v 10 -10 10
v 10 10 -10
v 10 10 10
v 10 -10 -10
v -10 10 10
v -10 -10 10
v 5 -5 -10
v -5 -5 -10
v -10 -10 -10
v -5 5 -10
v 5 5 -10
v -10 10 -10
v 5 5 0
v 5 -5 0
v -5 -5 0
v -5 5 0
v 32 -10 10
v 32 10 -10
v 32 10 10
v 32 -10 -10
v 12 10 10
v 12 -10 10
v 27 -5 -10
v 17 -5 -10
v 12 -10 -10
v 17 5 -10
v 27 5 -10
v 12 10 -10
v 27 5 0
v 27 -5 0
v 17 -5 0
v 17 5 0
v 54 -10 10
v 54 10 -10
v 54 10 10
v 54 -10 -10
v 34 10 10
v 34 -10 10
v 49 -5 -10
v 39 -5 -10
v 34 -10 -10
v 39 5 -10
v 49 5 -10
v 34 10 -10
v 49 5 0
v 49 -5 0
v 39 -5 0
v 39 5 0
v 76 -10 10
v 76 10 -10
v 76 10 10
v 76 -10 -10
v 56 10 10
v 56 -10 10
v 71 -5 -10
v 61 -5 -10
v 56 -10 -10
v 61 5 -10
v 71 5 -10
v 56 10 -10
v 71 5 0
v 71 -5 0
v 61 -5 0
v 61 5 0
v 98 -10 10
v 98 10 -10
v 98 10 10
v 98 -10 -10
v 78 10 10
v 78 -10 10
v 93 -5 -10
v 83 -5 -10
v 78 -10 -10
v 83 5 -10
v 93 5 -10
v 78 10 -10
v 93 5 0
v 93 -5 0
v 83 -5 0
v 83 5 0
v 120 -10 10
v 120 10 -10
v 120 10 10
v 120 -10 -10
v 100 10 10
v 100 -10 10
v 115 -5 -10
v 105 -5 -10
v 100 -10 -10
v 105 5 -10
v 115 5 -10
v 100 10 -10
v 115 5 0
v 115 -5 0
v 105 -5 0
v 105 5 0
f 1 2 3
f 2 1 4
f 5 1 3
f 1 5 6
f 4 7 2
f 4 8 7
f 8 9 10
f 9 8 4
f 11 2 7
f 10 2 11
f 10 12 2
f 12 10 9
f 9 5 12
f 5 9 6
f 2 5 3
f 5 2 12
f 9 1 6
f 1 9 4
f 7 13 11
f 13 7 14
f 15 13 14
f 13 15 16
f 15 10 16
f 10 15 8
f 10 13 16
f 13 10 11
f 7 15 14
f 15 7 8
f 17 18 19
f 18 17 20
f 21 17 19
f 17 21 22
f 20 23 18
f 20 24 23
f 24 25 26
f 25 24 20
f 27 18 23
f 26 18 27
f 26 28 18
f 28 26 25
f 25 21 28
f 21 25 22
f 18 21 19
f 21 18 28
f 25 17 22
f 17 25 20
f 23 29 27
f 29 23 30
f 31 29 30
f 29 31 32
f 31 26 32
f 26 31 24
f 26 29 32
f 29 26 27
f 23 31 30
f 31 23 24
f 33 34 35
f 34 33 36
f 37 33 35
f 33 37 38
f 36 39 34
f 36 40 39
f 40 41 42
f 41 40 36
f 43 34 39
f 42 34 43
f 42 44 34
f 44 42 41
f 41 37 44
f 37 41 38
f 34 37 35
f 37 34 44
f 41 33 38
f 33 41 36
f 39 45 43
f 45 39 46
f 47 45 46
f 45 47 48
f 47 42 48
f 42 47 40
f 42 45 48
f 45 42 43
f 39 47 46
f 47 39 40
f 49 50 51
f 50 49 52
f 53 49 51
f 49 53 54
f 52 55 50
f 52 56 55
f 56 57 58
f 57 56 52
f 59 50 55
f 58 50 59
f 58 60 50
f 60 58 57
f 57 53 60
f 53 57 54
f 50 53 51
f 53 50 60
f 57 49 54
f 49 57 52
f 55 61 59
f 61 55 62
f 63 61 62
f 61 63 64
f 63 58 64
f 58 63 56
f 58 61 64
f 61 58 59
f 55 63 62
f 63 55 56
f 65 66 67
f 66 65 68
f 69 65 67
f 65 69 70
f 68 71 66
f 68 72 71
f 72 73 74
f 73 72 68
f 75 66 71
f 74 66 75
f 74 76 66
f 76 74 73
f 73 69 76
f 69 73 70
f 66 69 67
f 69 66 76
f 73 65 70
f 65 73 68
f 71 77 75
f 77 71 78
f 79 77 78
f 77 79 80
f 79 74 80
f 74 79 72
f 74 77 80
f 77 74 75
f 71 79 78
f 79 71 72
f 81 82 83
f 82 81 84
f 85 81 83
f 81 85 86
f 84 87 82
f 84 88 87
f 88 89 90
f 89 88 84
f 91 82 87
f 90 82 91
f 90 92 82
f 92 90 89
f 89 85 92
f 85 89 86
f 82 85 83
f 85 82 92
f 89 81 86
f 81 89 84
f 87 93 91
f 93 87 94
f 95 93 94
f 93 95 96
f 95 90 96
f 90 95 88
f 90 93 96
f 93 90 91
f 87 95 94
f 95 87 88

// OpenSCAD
// Parameters for the U-shaped block
module u_shaped_block() {
    difference() {
        // Outer block with thicker horizontal base and extended vertical arms
        cube([20, 20, 20], center = true); // Adjusted height to make the base thicker
        // Inner cutout
        translate([0, 0, -10]) { // Adjusted position to match proportions
            cube([10, 10, 20], center = true); // Adjusted height to reduce the opening
        }
    }
}

// Arrange the U-shaped blocks in a compact linear configuration
module layer_1() {
    for (i = [0:5]) {
        translate([i * 22, 0, 0]) { // Adjusted spacing for tighter arrangement
            u_shaped_block();
        }
    }
}

// Main model
layer_1();
